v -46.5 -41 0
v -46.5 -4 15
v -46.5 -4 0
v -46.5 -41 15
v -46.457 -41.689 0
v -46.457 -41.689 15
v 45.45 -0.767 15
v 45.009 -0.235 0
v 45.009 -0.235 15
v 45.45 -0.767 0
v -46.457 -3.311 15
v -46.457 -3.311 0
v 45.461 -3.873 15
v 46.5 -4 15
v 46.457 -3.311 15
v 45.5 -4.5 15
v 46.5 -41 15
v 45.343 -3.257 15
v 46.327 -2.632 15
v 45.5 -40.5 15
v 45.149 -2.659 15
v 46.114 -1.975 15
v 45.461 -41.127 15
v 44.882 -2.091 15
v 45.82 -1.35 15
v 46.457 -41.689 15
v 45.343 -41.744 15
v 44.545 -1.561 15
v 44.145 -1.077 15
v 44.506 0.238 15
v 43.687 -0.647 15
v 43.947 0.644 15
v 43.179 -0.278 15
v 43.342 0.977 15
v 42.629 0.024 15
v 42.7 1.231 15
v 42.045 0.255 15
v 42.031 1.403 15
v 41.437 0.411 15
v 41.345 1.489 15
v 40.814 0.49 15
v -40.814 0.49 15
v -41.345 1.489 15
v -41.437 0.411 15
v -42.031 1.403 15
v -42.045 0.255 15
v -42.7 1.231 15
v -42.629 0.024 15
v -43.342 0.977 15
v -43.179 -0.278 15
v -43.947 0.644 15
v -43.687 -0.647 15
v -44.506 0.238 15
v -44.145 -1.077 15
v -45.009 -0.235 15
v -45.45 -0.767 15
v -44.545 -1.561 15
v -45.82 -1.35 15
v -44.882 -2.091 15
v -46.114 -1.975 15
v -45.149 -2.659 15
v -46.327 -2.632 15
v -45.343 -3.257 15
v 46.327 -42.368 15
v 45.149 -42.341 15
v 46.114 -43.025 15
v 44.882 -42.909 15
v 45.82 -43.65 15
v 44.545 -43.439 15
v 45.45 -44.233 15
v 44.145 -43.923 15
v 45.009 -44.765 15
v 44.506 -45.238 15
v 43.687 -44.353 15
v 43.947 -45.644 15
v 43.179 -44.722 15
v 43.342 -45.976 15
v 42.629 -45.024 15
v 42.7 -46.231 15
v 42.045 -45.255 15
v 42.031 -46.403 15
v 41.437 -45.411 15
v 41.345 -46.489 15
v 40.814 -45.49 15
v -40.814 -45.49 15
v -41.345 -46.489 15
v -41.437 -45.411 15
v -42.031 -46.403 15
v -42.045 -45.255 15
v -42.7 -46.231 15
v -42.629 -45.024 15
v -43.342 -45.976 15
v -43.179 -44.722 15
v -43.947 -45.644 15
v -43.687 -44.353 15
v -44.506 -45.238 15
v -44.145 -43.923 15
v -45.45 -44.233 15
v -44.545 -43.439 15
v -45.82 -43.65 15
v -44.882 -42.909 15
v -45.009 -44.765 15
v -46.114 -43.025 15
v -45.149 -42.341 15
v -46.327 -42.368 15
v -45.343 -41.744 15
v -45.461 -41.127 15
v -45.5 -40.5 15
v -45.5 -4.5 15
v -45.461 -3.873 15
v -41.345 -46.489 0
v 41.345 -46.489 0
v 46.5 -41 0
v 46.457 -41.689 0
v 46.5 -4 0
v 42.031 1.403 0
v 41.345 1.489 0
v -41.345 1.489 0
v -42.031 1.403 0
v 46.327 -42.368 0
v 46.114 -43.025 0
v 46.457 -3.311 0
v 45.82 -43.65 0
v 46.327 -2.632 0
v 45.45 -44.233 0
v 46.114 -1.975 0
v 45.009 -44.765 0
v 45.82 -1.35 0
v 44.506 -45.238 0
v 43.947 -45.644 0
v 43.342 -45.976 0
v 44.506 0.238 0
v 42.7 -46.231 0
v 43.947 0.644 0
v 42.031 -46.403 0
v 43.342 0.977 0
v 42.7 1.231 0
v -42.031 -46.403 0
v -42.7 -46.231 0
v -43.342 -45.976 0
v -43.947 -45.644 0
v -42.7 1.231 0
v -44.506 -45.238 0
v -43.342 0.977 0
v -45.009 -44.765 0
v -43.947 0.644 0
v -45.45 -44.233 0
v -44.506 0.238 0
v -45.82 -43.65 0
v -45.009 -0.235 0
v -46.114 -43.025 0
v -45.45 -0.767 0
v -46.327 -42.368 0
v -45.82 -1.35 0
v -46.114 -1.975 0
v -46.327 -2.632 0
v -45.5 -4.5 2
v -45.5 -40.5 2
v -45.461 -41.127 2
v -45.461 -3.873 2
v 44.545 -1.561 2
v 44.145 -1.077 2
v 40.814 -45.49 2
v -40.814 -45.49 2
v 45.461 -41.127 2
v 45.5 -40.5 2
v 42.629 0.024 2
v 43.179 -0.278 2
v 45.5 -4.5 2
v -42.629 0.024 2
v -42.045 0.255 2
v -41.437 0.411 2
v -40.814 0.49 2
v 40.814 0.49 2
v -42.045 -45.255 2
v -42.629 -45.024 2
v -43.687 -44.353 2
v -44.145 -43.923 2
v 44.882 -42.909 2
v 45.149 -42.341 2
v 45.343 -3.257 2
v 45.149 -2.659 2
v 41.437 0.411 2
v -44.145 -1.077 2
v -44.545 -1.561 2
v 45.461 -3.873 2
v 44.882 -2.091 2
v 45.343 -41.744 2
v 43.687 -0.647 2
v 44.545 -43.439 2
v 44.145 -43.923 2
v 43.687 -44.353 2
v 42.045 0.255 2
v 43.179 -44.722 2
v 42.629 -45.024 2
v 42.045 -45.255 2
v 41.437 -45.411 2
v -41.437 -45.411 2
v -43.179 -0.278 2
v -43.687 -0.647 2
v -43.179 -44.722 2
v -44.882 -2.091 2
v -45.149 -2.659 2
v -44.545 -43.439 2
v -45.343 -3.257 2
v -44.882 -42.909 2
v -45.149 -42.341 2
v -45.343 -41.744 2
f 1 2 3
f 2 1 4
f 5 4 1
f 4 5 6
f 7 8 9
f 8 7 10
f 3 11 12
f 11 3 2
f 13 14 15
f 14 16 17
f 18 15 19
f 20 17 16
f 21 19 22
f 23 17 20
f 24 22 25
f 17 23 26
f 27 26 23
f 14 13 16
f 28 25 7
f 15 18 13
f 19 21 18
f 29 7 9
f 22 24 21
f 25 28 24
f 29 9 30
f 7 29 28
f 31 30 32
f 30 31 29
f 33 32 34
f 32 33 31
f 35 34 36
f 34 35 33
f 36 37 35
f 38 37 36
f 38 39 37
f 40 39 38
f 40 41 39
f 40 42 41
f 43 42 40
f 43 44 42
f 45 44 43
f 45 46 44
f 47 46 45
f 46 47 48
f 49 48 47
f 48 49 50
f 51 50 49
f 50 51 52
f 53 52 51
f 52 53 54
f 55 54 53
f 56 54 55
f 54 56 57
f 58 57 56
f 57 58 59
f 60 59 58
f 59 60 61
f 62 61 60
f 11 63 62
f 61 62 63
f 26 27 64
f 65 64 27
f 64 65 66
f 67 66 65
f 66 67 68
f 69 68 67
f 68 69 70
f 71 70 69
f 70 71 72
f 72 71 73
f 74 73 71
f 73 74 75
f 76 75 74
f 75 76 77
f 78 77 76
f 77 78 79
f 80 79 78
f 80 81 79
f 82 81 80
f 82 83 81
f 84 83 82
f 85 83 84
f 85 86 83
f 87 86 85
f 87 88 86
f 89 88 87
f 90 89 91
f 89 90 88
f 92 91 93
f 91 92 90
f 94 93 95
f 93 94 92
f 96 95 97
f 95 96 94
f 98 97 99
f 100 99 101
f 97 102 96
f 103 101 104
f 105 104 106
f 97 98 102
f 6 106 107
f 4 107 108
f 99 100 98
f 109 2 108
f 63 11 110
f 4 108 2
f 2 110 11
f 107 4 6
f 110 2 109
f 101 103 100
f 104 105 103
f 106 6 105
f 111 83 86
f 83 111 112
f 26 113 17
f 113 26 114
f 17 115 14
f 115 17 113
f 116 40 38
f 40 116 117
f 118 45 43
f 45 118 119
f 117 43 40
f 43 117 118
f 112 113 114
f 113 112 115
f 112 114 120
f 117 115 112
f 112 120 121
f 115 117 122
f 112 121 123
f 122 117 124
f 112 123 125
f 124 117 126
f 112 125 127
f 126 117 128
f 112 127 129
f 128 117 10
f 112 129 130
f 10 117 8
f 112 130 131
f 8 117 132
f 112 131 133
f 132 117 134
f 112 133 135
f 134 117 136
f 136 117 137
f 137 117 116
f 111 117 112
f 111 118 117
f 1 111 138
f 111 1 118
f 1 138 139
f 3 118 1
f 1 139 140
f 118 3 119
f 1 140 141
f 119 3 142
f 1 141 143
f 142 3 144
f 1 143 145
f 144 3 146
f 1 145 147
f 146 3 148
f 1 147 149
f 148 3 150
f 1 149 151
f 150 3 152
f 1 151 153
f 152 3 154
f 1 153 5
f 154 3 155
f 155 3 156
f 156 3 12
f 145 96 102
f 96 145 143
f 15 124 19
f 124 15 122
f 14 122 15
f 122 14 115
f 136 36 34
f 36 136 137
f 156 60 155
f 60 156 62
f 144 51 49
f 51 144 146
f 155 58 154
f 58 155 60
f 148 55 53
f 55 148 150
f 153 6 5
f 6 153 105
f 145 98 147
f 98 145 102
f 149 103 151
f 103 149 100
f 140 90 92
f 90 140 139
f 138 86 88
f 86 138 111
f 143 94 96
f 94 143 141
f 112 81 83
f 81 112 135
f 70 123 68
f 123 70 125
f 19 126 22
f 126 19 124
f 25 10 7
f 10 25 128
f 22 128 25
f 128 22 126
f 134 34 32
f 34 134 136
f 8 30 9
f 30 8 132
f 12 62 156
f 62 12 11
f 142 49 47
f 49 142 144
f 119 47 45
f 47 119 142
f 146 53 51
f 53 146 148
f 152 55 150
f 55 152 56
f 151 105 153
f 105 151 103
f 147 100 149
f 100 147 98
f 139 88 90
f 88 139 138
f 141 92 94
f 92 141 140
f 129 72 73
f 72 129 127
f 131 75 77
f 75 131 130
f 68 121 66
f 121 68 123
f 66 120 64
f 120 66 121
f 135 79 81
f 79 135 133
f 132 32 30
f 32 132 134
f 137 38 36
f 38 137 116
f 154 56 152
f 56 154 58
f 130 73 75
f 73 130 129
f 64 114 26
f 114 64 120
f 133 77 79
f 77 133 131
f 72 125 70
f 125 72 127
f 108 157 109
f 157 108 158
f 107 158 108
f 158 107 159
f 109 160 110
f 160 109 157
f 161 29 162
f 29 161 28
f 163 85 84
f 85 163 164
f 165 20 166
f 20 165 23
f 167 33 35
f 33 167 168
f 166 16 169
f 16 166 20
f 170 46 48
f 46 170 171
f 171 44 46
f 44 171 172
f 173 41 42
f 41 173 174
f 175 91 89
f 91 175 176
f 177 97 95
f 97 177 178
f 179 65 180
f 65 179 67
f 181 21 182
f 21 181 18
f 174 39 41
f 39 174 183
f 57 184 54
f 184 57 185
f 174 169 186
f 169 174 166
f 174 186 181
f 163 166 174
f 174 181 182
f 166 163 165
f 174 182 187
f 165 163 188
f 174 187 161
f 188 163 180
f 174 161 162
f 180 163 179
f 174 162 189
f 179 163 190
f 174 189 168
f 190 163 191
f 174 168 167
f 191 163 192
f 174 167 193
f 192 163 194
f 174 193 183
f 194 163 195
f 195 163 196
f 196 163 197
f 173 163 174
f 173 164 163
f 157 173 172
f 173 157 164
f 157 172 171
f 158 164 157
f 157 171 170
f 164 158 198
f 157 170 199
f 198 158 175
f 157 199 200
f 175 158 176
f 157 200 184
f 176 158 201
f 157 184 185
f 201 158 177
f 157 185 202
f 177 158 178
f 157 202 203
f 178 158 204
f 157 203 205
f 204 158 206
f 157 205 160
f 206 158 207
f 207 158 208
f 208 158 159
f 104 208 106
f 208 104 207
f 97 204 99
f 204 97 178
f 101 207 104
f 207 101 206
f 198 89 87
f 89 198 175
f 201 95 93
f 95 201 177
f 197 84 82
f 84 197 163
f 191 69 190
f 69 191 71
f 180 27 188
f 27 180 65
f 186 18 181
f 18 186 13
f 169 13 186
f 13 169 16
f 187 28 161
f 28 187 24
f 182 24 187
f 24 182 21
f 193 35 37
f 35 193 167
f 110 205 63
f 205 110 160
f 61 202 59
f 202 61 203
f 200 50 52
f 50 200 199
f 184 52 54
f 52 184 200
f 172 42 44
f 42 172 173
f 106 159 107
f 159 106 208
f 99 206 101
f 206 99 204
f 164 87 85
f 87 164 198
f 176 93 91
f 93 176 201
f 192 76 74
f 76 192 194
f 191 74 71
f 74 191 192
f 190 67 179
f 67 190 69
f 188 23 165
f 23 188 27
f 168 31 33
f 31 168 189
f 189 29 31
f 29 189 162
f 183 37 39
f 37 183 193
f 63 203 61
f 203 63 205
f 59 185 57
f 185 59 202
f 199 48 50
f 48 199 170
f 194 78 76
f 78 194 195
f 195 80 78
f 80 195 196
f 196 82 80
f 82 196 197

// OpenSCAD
$fn = 50;


difference() {
	union() {
		translate(v = [0, -22.5000000000, 0]) {
			hull() {
				translate(v = [-41.0000000000, 18.5000000000, 0]) {
					cylinder(h = 15, r = 5.5000000000);
				}
				translate(v = [41.0000000000, 18.5000000000, 0]) {
					cylinder(h = 15, r = 5.5000000000);
				}
				translate(v = [-41.0000000000, -18.5000000000, 0]) {
					cylinder(h = 15, r = 5.5000000000);
				}
				translate(v = [41.0000000000, -18.5000000000, 0]) {
					cylinder(h = 15, r = 5.5000000000);
				}
			}
		}
	}
	union() {
		translate(v = [0, -22.5000000000, 2]) {
			hull() {
				translate(v = [-40.5000000000, 18.0000000000, 0]) {
					cylinder(h = 30, r = 5);
				}
				translate(v = [40.5000000000, 18.0000000000, 0]) {
					cylinder(h = 30, r = 5);
				}
				translate(v = [-40.5000000000, -18.0000000000, 0]) {
					cylinder(h = 30, r = 5);
				}
				translate(v = [40.5000000000, -18.0000000000, 0]) {
					cylinder(h = 30, r = 5);
				}
			}
		}
	}
}
